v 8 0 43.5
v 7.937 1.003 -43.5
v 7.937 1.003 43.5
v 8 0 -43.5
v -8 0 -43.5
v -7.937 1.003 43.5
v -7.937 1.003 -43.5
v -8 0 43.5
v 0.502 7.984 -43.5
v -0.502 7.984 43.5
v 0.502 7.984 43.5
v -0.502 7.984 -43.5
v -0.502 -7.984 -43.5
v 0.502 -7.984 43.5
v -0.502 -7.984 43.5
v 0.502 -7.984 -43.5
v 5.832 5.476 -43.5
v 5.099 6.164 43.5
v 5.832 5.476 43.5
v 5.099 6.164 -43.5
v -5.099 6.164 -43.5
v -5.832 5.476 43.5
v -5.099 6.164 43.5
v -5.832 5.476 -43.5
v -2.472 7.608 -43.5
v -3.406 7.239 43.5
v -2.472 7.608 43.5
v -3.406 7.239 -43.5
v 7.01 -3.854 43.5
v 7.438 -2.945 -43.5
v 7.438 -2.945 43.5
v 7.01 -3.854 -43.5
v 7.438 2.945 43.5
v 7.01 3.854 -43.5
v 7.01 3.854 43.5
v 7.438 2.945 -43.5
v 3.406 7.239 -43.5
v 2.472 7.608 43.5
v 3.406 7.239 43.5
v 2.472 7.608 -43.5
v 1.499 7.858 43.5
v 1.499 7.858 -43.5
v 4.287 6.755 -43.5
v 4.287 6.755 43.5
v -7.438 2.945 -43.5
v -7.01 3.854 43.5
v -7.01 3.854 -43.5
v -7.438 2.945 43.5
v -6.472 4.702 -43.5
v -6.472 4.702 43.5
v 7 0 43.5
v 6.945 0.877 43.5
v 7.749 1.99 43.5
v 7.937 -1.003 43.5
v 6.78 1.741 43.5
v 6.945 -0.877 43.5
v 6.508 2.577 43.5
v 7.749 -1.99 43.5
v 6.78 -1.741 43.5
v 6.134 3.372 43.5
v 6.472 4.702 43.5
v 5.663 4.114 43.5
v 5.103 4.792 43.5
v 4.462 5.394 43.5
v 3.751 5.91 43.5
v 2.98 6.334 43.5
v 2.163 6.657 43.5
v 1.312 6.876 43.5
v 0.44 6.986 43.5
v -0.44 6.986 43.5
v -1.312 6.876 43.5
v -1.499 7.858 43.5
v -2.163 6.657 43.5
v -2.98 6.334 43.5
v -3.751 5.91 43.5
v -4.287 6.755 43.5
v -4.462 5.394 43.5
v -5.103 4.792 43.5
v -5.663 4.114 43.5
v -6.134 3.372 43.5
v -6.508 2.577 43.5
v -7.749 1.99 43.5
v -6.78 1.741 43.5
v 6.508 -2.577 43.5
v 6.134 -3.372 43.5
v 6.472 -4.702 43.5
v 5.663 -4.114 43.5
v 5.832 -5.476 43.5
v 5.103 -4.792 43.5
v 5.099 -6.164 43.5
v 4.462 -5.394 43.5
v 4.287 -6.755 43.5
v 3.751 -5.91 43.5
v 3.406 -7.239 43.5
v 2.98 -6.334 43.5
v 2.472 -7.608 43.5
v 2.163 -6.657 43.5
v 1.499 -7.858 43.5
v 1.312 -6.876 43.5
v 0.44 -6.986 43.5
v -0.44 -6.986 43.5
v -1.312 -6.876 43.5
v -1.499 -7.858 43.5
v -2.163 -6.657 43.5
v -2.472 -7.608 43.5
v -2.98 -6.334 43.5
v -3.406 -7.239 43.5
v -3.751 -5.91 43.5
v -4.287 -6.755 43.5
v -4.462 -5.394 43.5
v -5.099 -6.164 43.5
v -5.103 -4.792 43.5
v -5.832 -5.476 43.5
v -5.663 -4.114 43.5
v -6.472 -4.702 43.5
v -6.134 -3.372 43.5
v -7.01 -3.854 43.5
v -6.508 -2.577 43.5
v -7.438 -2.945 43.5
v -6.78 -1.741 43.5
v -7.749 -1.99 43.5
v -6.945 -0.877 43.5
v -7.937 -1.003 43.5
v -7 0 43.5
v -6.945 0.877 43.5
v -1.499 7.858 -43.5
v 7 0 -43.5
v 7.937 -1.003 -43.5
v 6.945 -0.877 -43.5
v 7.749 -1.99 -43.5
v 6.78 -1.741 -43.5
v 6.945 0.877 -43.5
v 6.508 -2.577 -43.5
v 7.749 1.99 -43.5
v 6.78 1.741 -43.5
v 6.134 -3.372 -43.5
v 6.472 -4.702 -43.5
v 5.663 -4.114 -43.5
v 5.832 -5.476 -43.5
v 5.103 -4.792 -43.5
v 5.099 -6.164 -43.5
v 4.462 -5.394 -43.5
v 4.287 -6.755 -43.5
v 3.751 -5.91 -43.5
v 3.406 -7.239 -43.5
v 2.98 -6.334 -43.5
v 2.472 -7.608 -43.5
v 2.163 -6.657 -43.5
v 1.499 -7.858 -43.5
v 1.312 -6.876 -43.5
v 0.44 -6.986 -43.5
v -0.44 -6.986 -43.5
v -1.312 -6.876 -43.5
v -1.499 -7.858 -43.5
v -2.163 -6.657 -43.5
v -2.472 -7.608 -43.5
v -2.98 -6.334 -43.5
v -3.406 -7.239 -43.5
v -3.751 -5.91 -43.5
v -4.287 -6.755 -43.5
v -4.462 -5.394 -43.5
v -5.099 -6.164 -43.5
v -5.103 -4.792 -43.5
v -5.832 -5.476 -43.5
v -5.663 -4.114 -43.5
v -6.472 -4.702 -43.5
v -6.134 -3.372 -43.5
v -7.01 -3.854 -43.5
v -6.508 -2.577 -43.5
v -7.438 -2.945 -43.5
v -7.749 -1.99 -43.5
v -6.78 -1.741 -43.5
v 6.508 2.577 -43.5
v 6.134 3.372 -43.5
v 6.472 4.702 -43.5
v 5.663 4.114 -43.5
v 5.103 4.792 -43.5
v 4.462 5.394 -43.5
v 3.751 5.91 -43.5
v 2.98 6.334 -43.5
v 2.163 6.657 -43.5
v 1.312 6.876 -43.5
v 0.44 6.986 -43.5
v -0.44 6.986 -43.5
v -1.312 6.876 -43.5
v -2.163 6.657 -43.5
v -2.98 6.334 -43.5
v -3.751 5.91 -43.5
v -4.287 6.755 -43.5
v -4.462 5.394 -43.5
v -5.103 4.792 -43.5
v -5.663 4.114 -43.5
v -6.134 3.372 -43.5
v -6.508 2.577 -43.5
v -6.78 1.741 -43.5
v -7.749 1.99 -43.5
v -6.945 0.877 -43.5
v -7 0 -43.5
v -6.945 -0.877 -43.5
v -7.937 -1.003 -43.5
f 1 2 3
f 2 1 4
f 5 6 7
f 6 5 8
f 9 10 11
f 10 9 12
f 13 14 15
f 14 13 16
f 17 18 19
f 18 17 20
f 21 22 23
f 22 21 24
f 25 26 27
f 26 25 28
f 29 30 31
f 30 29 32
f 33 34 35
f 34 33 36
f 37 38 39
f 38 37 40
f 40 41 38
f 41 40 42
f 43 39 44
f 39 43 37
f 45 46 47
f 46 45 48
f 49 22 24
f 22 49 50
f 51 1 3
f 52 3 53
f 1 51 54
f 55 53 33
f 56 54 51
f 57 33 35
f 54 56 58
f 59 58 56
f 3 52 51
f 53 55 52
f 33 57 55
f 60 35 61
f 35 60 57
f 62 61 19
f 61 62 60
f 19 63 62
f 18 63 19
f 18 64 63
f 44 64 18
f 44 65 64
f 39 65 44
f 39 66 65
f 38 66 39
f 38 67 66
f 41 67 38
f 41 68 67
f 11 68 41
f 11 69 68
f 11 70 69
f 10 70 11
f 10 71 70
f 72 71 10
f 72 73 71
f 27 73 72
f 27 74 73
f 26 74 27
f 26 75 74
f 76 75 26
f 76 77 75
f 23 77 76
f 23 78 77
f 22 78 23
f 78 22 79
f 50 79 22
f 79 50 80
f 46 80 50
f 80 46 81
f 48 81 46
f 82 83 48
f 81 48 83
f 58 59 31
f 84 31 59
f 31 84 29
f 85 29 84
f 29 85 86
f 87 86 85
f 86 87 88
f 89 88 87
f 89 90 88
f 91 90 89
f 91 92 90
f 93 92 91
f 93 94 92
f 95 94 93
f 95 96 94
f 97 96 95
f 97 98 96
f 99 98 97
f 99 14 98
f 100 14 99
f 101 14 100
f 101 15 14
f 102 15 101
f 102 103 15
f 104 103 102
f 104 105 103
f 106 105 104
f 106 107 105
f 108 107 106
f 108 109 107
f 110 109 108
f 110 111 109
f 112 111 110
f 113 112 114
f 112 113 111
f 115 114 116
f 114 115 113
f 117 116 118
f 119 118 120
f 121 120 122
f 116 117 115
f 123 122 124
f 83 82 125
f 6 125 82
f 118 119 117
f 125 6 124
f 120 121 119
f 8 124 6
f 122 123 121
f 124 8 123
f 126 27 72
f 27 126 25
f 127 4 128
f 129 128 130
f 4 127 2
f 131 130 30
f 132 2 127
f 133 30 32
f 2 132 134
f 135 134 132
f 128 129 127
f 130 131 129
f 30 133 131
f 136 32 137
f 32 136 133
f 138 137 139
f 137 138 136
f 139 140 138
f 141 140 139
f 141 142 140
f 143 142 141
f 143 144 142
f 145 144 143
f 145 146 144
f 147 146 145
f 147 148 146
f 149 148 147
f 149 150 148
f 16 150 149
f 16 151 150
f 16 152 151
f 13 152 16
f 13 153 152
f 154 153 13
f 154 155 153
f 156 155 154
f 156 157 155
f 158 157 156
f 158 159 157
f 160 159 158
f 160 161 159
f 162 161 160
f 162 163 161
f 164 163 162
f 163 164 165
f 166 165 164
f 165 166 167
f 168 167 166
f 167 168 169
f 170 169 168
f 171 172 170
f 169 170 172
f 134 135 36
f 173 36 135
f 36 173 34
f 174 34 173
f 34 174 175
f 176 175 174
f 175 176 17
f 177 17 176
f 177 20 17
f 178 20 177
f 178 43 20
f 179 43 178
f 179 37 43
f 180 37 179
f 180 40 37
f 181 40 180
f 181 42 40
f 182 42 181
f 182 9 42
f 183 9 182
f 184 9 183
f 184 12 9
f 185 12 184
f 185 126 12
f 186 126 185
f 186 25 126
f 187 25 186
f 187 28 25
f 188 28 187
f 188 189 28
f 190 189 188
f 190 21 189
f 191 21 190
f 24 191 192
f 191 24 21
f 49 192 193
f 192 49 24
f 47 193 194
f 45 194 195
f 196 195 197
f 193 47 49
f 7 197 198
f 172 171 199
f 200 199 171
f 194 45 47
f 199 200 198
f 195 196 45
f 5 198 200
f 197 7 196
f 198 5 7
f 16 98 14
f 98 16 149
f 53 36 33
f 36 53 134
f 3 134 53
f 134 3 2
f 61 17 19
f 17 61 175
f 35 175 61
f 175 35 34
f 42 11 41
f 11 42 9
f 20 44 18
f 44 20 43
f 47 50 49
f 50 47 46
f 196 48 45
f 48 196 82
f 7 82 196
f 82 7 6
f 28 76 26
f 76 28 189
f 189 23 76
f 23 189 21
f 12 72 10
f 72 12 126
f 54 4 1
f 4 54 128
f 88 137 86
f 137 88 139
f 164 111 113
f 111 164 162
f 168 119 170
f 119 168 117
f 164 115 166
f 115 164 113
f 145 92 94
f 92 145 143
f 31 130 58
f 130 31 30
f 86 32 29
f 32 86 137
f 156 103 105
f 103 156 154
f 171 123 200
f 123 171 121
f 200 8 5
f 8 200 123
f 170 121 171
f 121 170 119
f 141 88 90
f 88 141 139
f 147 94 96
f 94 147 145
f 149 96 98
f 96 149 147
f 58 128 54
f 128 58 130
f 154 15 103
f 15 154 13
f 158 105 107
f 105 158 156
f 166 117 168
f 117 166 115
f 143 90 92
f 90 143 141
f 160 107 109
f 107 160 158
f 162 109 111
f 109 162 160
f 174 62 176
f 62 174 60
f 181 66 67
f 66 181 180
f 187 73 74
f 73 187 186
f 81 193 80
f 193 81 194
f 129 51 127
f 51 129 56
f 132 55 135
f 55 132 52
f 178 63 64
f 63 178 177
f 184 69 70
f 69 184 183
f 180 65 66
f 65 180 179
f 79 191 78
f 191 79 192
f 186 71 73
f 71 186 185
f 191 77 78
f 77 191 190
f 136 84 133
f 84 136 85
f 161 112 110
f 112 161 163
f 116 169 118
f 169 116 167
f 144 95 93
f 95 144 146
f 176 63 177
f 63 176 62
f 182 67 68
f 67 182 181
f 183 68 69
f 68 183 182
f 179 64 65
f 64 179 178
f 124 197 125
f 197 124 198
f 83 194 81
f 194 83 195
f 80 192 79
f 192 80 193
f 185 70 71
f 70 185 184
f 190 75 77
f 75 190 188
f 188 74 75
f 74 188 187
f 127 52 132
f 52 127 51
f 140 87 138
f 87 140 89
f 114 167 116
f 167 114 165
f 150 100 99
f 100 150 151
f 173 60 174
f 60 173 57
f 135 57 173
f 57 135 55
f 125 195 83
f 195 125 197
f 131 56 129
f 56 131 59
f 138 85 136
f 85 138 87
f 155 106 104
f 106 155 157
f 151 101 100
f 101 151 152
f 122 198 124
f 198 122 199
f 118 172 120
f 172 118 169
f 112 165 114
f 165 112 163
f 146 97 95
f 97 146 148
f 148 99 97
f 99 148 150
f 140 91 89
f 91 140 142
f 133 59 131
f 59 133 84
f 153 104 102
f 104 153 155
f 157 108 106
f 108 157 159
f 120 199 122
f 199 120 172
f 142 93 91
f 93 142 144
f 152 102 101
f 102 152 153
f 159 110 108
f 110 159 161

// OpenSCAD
$fn = 50;


difference() {
	union() {
		translate(v = [0, 0, -43.5000000000]) {
			cylinder(h = 87, r = 8.0000000000);
		}
	}
	union() {
		translate(v = [0, 0, -100.0000000000]) {
			cylinder(h = 200, r = 7);
		}
	}
}
